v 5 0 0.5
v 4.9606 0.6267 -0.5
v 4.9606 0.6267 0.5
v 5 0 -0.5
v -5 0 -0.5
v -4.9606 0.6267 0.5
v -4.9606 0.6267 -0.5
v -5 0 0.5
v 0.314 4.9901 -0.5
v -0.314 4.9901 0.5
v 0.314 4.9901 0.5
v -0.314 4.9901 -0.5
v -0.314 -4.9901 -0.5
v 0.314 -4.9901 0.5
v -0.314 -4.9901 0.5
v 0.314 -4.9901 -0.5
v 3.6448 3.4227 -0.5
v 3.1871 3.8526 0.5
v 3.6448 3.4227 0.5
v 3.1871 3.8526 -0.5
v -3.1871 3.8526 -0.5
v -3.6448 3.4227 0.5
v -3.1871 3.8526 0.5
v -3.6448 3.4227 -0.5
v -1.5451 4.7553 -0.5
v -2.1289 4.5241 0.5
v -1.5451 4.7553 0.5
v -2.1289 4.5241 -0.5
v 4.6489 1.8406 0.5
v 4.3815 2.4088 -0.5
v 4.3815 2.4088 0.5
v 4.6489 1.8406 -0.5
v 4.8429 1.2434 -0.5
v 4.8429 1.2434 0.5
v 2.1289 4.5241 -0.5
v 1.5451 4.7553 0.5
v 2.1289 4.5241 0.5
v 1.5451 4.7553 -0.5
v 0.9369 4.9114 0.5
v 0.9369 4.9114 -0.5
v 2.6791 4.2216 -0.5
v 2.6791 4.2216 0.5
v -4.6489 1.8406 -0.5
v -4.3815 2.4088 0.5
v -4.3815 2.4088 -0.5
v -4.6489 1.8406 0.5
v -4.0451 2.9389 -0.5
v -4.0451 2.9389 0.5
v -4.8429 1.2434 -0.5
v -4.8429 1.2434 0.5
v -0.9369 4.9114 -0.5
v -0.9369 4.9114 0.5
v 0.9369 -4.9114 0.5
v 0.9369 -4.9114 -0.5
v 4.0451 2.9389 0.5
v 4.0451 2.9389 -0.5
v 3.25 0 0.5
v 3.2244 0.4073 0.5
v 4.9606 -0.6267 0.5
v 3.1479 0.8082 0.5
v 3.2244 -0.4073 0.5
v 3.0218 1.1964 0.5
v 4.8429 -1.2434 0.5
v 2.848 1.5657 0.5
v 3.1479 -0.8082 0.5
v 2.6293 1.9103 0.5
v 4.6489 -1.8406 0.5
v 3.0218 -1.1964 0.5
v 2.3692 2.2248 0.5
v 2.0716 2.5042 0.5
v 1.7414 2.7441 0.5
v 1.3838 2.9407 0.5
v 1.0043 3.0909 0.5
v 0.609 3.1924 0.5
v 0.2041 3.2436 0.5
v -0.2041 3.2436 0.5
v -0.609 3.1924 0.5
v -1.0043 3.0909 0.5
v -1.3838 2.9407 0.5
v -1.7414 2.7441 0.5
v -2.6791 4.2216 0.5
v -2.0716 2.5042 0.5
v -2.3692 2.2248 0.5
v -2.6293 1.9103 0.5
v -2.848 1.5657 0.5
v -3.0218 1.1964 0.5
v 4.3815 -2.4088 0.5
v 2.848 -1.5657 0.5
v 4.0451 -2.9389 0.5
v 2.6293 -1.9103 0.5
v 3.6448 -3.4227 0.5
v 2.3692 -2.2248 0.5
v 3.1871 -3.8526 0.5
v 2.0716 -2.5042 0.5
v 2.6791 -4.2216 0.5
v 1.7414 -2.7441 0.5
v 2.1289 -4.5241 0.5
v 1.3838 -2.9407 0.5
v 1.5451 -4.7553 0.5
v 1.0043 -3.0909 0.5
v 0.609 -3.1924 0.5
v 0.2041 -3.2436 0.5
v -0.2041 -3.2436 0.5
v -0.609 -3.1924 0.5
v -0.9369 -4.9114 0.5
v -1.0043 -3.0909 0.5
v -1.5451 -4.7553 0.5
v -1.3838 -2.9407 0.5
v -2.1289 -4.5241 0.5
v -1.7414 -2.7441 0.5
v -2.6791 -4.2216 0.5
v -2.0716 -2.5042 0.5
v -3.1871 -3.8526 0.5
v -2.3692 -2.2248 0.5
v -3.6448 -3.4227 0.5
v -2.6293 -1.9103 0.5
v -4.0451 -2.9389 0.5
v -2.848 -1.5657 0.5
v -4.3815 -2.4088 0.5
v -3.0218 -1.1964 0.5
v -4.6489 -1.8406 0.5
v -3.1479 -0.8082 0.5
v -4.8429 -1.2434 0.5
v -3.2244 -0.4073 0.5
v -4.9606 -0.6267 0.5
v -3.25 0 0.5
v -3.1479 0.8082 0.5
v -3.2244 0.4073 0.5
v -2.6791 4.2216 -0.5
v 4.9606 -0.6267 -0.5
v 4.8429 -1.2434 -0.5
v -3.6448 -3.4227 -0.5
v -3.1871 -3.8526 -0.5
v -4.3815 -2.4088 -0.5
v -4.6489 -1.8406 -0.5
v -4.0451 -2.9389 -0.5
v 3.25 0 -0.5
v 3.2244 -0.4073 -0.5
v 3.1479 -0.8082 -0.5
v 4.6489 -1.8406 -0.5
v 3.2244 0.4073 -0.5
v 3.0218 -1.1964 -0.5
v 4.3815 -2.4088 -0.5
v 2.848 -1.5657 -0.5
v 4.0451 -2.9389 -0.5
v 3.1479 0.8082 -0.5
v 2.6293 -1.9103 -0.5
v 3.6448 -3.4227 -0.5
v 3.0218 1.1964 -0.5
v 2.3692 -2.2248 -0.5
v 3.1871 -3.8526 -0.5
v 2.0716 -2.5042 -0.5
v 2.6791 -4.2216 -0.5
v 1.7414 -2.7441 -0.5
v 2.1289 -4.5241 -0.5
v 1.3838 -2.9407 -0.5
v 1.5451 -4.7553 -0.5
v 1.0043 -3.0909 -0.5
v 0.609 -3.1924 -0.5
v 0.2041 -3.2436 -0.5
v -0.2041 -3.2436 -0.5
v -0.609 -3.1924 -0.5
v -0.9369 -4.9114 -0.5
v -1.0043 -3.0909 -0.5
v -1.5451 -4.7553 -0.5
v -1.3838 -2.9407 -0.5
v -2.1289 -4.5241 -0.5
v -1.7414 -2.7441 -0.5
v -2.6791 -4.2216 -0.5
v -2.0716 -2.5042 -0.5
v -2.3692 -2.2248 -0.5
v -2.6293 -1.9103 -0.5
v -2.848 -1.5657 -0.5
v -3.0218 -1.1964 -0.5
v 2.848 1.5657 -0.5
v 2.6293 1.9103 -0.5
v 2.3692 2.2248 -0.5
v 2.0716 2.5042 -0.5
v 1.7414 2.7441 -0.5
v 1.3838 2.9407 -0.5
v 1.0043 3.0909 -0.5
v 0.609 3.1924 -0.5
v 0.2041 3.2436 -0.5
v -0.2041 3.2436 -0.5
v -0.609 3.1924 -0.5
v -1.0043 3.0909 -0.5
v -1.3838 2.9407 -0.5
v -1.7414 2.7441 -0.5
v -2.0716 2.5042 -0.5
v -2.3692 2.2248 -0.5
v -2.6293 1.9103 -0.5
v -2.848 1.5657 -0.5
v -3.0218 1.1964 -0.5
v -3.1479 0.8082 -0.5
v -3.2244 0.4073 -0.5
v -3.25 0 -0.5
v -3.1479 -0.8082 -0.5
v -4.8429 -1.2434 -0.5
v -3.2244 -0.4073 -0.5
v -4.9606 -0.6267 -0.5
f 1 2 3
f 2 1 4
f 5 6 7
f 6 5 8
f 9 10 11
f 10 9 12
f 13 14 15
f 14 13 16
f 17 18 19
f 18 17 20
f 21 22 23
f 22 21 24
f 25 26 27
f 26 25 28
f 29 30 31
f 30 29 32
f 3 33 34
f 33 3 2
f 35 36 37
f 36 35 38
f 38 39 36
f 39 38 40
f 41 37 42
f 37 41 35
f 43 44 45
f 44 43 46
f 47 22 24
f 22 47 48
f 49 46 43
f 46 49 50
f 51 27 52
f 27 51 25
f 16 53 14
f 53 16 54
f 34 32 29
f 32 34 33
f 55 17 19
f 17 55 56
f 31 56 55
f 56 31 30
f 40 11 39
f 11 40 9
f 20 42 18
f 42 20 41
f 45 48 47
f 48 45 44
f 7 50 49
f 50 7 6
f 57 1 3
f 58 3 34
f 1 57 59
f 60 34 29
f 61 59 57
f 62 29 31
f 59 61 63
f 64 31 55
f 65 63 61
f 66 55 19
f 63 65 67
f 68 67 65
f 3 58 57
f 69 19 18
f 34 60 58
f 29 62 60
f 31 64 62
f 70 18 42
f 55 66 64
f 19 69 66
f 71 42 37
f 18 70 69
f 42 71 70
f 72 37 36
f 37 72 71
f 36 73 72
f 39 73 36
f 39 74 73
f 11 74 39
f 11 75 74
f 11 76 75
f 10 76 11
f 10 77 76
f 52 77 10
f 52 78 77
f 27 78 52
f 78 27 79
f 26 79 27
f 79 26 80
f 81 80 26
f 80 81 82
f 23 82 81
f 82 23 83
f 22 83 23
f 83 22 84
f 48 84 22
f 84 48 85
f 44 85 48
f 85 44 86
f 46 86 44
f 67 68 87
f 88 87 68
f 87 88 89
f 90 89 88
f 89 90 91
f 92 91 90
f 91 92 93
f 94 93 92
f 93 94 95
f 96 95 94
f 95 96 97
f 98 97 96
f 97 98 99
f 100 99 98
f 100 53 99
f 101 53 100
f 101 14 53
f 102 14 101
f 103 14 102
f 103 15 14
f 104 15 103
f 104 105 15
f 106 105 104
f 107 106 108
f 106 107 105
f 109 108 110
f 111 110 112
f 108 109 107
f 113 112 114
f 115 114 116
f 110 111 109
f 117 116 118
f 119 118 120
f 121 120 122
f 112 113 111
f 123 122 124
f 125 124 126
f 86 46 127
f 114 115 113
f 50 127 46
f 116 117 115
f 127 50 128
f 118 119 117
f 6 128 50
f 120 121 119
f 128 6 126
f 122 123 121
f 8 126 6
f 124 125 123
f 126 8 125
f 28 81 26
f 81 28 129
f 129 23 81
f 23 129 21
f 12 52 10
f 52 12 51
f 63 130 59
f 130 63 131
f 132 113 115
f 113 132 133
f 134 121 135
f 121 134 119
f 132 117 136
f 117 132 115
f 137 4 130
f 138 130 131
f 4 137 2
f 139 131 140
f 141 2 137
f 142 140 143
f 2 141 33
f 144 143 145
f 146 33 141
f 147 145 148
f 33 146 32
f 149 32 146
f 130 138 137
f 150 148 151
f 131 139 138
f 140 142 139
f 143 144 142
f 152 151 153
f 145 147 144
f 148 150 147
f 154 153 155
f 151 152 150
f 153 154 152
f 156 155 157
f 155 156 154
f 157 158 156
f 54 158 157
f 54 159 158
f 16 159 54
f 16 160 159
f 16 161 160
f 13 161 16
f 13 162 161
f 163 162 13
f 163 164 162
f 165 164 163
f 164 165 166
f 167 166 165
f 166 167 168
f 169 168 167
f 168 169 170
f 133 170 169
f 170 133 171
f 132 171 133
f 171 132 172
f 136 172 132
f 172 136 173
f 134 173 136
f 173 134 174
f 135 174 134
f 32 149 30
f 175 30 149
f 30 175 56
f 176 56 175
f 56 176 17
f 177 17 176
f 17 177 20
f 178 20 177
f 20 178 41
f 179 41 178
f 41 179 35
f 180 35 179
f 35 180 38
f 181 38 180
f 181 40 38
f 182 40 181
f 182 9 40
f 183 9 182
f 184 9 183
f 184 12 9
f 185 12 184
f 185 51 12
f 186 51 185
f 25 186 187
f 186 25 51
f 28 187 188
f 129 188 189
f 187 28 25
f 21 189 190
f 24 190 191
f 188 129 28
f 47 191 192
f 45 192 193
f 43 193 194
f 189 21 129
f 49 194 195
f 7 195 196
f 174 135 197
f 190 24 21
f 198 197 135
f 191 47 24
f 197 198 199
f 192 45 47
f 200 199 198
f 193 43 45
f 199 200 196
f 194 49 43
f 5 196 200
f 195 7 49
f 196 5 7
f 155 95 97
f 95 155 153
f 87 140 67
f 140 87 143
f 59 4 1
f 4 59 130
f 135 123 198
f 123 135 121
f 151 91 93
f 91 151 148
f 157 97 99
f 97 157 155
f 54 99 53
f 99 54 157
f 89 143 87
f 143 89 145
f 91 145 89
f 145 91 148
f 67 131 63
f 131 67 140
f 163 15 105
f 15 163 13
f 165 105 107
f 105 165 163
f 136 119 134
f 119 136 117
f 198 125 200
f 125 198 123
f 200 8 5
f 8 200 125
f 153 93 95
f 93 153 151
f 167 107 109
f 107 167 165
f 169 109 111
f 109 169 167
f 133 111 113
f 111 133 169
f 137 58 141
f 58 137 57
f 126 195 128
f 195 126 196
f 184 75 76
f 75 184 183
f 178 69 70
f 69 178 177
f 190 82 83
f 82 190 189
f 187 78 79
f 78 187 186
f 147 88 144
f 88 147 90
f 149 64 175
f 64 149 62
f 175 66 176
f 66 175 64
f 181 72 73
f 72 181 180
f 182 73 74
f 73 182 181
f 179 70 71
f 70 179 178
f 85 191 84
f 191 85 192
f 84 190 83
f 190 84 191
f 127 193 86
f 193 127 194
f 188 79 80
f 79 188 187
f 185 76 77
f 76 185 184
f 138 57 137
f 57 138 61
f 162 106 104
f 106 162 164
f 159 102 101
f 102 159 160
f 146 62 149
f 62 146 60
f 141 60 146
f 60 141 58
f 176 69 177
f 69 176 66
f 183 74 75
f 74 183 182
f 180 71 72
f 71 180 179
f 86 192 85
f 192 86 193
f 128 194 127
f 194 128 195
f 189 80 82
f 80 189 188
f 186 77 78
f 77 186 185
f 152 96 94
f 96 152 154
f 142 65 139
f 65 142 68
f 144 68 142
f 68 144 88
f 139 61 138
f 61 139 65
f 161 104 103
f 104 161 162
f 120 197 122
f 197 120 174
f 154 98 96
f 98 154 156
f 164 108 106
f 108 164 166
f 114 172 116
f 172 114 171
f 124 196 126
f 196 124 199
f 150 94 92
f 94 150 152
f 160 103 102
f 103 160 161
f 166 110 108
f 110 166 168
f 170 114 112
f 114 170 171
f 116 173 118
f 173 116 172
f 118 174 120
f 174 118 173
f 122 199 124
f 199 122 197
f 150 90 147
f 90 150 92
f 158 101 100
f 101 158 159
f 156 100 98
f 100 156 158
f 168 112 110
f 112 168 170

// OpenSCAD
$fn = 50;


difference() {
	union() {
		translate(v = [0, 0, -0.5000000000]) {
			cylinder(h = 1, r = 5.0000000000);
		}
	}
	union() {
		translate(v = [0, 0, -100.0000000000]) {
			cylinder(h = 200, r = 3.2500000000);
		}
	}
}
